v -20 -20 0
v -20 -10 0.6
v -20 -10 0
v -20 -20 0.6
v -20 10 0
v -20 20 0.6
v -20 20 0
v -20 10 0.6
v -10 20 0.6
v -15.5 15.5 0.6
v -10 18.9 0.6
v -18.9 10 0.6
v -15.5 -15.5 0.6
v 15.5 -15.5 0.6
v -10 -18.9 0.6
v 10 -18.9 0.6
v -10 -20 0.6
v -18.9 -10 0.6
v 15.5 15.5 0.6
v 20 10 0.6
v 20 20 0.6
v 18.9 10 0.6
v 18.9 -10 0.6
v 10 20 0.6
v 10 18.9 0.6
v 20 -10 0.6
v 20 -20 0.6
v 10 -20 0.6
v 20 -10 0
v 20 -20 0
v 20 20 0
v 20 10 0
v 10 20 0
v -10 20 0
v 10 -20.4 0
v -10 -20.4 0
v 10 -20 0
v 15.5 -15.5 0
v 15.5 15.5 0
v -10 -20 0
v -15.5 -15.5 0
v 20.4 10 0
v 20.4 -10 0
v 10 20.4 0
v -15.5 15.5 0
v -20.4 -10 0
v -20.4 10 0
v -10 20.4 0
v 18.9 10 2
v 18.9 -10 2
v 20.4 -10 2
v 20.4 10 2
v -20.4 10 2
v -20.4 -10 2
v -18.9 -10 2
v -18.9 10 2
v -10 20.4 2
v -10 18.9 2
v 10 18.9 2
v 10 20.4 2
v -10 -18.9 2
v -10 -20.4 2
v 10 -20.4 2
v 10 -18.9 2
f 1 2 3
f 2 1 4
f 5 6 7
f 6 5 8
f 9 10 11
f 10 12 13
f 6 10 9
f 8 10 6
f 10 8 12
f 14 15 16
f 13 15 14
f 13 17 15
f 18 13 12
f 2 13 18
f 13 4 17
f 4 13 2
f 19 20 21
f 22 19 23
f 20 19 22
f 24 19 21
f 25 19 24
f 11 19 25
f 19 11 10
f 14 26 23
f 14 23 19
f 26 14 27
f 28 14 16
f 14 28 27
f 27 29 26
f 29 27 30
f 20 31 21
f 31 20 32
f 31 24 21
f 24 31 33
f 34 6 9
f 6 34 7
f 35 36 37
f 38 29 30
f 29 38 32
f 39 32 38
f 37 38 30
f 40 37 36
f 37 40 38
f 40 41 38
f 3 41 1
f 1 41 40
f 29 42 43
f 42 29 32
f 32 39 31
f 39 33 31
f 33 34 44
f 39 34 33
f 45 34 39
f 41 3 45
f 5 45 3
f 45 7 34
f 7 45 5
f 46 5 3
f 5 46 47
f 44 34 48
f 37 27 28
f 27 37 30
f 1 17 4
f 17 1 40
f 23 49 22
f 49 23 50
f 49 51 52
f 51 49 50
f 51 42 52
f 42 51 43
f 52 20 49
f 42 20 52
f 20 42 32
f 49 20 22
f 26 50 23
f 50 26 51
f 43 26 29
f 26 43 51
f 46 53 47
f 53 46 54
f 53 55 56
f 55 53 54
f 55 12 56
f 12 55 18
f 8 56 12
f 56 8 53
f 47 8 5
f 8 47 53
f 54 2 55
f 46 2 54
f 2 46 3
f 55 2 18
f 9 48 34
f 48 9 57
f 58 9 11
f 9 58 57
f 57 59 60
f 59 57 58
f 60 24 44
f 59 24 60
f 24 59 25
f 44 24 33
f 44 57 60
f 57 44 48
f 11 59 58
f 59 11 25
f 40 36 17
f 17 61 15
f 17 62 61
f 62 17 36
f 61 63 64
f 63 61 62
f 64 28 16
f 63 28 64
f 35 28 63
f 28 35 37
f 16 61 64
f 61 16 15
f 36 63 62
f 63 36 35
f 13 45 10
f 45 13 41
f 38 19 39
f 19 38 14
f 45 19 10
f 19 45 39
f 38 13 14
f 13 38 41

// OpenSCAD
h = 0.6;

difference() {
    union() {
        translate([0,0,h/2])
        cube([40, 40,h], center=true);

        translate([37.8/2+1.5/2,0,2/2])
        cube([1.5,20,2],center=true);

        translate([-37.8/2-1.5/2,0,2/2])
        cube([1.5,20,2],center=true);

        translate([0,37.8/2+1.5/2,2/2])
        cube([20,1.5,2],center=true);

        translate([0,-37.8/2-1.5/2,2/2])
        cube([20,1.5,2],center=true);
    }
    cube([38-7,38-7,2],center=true);
}
